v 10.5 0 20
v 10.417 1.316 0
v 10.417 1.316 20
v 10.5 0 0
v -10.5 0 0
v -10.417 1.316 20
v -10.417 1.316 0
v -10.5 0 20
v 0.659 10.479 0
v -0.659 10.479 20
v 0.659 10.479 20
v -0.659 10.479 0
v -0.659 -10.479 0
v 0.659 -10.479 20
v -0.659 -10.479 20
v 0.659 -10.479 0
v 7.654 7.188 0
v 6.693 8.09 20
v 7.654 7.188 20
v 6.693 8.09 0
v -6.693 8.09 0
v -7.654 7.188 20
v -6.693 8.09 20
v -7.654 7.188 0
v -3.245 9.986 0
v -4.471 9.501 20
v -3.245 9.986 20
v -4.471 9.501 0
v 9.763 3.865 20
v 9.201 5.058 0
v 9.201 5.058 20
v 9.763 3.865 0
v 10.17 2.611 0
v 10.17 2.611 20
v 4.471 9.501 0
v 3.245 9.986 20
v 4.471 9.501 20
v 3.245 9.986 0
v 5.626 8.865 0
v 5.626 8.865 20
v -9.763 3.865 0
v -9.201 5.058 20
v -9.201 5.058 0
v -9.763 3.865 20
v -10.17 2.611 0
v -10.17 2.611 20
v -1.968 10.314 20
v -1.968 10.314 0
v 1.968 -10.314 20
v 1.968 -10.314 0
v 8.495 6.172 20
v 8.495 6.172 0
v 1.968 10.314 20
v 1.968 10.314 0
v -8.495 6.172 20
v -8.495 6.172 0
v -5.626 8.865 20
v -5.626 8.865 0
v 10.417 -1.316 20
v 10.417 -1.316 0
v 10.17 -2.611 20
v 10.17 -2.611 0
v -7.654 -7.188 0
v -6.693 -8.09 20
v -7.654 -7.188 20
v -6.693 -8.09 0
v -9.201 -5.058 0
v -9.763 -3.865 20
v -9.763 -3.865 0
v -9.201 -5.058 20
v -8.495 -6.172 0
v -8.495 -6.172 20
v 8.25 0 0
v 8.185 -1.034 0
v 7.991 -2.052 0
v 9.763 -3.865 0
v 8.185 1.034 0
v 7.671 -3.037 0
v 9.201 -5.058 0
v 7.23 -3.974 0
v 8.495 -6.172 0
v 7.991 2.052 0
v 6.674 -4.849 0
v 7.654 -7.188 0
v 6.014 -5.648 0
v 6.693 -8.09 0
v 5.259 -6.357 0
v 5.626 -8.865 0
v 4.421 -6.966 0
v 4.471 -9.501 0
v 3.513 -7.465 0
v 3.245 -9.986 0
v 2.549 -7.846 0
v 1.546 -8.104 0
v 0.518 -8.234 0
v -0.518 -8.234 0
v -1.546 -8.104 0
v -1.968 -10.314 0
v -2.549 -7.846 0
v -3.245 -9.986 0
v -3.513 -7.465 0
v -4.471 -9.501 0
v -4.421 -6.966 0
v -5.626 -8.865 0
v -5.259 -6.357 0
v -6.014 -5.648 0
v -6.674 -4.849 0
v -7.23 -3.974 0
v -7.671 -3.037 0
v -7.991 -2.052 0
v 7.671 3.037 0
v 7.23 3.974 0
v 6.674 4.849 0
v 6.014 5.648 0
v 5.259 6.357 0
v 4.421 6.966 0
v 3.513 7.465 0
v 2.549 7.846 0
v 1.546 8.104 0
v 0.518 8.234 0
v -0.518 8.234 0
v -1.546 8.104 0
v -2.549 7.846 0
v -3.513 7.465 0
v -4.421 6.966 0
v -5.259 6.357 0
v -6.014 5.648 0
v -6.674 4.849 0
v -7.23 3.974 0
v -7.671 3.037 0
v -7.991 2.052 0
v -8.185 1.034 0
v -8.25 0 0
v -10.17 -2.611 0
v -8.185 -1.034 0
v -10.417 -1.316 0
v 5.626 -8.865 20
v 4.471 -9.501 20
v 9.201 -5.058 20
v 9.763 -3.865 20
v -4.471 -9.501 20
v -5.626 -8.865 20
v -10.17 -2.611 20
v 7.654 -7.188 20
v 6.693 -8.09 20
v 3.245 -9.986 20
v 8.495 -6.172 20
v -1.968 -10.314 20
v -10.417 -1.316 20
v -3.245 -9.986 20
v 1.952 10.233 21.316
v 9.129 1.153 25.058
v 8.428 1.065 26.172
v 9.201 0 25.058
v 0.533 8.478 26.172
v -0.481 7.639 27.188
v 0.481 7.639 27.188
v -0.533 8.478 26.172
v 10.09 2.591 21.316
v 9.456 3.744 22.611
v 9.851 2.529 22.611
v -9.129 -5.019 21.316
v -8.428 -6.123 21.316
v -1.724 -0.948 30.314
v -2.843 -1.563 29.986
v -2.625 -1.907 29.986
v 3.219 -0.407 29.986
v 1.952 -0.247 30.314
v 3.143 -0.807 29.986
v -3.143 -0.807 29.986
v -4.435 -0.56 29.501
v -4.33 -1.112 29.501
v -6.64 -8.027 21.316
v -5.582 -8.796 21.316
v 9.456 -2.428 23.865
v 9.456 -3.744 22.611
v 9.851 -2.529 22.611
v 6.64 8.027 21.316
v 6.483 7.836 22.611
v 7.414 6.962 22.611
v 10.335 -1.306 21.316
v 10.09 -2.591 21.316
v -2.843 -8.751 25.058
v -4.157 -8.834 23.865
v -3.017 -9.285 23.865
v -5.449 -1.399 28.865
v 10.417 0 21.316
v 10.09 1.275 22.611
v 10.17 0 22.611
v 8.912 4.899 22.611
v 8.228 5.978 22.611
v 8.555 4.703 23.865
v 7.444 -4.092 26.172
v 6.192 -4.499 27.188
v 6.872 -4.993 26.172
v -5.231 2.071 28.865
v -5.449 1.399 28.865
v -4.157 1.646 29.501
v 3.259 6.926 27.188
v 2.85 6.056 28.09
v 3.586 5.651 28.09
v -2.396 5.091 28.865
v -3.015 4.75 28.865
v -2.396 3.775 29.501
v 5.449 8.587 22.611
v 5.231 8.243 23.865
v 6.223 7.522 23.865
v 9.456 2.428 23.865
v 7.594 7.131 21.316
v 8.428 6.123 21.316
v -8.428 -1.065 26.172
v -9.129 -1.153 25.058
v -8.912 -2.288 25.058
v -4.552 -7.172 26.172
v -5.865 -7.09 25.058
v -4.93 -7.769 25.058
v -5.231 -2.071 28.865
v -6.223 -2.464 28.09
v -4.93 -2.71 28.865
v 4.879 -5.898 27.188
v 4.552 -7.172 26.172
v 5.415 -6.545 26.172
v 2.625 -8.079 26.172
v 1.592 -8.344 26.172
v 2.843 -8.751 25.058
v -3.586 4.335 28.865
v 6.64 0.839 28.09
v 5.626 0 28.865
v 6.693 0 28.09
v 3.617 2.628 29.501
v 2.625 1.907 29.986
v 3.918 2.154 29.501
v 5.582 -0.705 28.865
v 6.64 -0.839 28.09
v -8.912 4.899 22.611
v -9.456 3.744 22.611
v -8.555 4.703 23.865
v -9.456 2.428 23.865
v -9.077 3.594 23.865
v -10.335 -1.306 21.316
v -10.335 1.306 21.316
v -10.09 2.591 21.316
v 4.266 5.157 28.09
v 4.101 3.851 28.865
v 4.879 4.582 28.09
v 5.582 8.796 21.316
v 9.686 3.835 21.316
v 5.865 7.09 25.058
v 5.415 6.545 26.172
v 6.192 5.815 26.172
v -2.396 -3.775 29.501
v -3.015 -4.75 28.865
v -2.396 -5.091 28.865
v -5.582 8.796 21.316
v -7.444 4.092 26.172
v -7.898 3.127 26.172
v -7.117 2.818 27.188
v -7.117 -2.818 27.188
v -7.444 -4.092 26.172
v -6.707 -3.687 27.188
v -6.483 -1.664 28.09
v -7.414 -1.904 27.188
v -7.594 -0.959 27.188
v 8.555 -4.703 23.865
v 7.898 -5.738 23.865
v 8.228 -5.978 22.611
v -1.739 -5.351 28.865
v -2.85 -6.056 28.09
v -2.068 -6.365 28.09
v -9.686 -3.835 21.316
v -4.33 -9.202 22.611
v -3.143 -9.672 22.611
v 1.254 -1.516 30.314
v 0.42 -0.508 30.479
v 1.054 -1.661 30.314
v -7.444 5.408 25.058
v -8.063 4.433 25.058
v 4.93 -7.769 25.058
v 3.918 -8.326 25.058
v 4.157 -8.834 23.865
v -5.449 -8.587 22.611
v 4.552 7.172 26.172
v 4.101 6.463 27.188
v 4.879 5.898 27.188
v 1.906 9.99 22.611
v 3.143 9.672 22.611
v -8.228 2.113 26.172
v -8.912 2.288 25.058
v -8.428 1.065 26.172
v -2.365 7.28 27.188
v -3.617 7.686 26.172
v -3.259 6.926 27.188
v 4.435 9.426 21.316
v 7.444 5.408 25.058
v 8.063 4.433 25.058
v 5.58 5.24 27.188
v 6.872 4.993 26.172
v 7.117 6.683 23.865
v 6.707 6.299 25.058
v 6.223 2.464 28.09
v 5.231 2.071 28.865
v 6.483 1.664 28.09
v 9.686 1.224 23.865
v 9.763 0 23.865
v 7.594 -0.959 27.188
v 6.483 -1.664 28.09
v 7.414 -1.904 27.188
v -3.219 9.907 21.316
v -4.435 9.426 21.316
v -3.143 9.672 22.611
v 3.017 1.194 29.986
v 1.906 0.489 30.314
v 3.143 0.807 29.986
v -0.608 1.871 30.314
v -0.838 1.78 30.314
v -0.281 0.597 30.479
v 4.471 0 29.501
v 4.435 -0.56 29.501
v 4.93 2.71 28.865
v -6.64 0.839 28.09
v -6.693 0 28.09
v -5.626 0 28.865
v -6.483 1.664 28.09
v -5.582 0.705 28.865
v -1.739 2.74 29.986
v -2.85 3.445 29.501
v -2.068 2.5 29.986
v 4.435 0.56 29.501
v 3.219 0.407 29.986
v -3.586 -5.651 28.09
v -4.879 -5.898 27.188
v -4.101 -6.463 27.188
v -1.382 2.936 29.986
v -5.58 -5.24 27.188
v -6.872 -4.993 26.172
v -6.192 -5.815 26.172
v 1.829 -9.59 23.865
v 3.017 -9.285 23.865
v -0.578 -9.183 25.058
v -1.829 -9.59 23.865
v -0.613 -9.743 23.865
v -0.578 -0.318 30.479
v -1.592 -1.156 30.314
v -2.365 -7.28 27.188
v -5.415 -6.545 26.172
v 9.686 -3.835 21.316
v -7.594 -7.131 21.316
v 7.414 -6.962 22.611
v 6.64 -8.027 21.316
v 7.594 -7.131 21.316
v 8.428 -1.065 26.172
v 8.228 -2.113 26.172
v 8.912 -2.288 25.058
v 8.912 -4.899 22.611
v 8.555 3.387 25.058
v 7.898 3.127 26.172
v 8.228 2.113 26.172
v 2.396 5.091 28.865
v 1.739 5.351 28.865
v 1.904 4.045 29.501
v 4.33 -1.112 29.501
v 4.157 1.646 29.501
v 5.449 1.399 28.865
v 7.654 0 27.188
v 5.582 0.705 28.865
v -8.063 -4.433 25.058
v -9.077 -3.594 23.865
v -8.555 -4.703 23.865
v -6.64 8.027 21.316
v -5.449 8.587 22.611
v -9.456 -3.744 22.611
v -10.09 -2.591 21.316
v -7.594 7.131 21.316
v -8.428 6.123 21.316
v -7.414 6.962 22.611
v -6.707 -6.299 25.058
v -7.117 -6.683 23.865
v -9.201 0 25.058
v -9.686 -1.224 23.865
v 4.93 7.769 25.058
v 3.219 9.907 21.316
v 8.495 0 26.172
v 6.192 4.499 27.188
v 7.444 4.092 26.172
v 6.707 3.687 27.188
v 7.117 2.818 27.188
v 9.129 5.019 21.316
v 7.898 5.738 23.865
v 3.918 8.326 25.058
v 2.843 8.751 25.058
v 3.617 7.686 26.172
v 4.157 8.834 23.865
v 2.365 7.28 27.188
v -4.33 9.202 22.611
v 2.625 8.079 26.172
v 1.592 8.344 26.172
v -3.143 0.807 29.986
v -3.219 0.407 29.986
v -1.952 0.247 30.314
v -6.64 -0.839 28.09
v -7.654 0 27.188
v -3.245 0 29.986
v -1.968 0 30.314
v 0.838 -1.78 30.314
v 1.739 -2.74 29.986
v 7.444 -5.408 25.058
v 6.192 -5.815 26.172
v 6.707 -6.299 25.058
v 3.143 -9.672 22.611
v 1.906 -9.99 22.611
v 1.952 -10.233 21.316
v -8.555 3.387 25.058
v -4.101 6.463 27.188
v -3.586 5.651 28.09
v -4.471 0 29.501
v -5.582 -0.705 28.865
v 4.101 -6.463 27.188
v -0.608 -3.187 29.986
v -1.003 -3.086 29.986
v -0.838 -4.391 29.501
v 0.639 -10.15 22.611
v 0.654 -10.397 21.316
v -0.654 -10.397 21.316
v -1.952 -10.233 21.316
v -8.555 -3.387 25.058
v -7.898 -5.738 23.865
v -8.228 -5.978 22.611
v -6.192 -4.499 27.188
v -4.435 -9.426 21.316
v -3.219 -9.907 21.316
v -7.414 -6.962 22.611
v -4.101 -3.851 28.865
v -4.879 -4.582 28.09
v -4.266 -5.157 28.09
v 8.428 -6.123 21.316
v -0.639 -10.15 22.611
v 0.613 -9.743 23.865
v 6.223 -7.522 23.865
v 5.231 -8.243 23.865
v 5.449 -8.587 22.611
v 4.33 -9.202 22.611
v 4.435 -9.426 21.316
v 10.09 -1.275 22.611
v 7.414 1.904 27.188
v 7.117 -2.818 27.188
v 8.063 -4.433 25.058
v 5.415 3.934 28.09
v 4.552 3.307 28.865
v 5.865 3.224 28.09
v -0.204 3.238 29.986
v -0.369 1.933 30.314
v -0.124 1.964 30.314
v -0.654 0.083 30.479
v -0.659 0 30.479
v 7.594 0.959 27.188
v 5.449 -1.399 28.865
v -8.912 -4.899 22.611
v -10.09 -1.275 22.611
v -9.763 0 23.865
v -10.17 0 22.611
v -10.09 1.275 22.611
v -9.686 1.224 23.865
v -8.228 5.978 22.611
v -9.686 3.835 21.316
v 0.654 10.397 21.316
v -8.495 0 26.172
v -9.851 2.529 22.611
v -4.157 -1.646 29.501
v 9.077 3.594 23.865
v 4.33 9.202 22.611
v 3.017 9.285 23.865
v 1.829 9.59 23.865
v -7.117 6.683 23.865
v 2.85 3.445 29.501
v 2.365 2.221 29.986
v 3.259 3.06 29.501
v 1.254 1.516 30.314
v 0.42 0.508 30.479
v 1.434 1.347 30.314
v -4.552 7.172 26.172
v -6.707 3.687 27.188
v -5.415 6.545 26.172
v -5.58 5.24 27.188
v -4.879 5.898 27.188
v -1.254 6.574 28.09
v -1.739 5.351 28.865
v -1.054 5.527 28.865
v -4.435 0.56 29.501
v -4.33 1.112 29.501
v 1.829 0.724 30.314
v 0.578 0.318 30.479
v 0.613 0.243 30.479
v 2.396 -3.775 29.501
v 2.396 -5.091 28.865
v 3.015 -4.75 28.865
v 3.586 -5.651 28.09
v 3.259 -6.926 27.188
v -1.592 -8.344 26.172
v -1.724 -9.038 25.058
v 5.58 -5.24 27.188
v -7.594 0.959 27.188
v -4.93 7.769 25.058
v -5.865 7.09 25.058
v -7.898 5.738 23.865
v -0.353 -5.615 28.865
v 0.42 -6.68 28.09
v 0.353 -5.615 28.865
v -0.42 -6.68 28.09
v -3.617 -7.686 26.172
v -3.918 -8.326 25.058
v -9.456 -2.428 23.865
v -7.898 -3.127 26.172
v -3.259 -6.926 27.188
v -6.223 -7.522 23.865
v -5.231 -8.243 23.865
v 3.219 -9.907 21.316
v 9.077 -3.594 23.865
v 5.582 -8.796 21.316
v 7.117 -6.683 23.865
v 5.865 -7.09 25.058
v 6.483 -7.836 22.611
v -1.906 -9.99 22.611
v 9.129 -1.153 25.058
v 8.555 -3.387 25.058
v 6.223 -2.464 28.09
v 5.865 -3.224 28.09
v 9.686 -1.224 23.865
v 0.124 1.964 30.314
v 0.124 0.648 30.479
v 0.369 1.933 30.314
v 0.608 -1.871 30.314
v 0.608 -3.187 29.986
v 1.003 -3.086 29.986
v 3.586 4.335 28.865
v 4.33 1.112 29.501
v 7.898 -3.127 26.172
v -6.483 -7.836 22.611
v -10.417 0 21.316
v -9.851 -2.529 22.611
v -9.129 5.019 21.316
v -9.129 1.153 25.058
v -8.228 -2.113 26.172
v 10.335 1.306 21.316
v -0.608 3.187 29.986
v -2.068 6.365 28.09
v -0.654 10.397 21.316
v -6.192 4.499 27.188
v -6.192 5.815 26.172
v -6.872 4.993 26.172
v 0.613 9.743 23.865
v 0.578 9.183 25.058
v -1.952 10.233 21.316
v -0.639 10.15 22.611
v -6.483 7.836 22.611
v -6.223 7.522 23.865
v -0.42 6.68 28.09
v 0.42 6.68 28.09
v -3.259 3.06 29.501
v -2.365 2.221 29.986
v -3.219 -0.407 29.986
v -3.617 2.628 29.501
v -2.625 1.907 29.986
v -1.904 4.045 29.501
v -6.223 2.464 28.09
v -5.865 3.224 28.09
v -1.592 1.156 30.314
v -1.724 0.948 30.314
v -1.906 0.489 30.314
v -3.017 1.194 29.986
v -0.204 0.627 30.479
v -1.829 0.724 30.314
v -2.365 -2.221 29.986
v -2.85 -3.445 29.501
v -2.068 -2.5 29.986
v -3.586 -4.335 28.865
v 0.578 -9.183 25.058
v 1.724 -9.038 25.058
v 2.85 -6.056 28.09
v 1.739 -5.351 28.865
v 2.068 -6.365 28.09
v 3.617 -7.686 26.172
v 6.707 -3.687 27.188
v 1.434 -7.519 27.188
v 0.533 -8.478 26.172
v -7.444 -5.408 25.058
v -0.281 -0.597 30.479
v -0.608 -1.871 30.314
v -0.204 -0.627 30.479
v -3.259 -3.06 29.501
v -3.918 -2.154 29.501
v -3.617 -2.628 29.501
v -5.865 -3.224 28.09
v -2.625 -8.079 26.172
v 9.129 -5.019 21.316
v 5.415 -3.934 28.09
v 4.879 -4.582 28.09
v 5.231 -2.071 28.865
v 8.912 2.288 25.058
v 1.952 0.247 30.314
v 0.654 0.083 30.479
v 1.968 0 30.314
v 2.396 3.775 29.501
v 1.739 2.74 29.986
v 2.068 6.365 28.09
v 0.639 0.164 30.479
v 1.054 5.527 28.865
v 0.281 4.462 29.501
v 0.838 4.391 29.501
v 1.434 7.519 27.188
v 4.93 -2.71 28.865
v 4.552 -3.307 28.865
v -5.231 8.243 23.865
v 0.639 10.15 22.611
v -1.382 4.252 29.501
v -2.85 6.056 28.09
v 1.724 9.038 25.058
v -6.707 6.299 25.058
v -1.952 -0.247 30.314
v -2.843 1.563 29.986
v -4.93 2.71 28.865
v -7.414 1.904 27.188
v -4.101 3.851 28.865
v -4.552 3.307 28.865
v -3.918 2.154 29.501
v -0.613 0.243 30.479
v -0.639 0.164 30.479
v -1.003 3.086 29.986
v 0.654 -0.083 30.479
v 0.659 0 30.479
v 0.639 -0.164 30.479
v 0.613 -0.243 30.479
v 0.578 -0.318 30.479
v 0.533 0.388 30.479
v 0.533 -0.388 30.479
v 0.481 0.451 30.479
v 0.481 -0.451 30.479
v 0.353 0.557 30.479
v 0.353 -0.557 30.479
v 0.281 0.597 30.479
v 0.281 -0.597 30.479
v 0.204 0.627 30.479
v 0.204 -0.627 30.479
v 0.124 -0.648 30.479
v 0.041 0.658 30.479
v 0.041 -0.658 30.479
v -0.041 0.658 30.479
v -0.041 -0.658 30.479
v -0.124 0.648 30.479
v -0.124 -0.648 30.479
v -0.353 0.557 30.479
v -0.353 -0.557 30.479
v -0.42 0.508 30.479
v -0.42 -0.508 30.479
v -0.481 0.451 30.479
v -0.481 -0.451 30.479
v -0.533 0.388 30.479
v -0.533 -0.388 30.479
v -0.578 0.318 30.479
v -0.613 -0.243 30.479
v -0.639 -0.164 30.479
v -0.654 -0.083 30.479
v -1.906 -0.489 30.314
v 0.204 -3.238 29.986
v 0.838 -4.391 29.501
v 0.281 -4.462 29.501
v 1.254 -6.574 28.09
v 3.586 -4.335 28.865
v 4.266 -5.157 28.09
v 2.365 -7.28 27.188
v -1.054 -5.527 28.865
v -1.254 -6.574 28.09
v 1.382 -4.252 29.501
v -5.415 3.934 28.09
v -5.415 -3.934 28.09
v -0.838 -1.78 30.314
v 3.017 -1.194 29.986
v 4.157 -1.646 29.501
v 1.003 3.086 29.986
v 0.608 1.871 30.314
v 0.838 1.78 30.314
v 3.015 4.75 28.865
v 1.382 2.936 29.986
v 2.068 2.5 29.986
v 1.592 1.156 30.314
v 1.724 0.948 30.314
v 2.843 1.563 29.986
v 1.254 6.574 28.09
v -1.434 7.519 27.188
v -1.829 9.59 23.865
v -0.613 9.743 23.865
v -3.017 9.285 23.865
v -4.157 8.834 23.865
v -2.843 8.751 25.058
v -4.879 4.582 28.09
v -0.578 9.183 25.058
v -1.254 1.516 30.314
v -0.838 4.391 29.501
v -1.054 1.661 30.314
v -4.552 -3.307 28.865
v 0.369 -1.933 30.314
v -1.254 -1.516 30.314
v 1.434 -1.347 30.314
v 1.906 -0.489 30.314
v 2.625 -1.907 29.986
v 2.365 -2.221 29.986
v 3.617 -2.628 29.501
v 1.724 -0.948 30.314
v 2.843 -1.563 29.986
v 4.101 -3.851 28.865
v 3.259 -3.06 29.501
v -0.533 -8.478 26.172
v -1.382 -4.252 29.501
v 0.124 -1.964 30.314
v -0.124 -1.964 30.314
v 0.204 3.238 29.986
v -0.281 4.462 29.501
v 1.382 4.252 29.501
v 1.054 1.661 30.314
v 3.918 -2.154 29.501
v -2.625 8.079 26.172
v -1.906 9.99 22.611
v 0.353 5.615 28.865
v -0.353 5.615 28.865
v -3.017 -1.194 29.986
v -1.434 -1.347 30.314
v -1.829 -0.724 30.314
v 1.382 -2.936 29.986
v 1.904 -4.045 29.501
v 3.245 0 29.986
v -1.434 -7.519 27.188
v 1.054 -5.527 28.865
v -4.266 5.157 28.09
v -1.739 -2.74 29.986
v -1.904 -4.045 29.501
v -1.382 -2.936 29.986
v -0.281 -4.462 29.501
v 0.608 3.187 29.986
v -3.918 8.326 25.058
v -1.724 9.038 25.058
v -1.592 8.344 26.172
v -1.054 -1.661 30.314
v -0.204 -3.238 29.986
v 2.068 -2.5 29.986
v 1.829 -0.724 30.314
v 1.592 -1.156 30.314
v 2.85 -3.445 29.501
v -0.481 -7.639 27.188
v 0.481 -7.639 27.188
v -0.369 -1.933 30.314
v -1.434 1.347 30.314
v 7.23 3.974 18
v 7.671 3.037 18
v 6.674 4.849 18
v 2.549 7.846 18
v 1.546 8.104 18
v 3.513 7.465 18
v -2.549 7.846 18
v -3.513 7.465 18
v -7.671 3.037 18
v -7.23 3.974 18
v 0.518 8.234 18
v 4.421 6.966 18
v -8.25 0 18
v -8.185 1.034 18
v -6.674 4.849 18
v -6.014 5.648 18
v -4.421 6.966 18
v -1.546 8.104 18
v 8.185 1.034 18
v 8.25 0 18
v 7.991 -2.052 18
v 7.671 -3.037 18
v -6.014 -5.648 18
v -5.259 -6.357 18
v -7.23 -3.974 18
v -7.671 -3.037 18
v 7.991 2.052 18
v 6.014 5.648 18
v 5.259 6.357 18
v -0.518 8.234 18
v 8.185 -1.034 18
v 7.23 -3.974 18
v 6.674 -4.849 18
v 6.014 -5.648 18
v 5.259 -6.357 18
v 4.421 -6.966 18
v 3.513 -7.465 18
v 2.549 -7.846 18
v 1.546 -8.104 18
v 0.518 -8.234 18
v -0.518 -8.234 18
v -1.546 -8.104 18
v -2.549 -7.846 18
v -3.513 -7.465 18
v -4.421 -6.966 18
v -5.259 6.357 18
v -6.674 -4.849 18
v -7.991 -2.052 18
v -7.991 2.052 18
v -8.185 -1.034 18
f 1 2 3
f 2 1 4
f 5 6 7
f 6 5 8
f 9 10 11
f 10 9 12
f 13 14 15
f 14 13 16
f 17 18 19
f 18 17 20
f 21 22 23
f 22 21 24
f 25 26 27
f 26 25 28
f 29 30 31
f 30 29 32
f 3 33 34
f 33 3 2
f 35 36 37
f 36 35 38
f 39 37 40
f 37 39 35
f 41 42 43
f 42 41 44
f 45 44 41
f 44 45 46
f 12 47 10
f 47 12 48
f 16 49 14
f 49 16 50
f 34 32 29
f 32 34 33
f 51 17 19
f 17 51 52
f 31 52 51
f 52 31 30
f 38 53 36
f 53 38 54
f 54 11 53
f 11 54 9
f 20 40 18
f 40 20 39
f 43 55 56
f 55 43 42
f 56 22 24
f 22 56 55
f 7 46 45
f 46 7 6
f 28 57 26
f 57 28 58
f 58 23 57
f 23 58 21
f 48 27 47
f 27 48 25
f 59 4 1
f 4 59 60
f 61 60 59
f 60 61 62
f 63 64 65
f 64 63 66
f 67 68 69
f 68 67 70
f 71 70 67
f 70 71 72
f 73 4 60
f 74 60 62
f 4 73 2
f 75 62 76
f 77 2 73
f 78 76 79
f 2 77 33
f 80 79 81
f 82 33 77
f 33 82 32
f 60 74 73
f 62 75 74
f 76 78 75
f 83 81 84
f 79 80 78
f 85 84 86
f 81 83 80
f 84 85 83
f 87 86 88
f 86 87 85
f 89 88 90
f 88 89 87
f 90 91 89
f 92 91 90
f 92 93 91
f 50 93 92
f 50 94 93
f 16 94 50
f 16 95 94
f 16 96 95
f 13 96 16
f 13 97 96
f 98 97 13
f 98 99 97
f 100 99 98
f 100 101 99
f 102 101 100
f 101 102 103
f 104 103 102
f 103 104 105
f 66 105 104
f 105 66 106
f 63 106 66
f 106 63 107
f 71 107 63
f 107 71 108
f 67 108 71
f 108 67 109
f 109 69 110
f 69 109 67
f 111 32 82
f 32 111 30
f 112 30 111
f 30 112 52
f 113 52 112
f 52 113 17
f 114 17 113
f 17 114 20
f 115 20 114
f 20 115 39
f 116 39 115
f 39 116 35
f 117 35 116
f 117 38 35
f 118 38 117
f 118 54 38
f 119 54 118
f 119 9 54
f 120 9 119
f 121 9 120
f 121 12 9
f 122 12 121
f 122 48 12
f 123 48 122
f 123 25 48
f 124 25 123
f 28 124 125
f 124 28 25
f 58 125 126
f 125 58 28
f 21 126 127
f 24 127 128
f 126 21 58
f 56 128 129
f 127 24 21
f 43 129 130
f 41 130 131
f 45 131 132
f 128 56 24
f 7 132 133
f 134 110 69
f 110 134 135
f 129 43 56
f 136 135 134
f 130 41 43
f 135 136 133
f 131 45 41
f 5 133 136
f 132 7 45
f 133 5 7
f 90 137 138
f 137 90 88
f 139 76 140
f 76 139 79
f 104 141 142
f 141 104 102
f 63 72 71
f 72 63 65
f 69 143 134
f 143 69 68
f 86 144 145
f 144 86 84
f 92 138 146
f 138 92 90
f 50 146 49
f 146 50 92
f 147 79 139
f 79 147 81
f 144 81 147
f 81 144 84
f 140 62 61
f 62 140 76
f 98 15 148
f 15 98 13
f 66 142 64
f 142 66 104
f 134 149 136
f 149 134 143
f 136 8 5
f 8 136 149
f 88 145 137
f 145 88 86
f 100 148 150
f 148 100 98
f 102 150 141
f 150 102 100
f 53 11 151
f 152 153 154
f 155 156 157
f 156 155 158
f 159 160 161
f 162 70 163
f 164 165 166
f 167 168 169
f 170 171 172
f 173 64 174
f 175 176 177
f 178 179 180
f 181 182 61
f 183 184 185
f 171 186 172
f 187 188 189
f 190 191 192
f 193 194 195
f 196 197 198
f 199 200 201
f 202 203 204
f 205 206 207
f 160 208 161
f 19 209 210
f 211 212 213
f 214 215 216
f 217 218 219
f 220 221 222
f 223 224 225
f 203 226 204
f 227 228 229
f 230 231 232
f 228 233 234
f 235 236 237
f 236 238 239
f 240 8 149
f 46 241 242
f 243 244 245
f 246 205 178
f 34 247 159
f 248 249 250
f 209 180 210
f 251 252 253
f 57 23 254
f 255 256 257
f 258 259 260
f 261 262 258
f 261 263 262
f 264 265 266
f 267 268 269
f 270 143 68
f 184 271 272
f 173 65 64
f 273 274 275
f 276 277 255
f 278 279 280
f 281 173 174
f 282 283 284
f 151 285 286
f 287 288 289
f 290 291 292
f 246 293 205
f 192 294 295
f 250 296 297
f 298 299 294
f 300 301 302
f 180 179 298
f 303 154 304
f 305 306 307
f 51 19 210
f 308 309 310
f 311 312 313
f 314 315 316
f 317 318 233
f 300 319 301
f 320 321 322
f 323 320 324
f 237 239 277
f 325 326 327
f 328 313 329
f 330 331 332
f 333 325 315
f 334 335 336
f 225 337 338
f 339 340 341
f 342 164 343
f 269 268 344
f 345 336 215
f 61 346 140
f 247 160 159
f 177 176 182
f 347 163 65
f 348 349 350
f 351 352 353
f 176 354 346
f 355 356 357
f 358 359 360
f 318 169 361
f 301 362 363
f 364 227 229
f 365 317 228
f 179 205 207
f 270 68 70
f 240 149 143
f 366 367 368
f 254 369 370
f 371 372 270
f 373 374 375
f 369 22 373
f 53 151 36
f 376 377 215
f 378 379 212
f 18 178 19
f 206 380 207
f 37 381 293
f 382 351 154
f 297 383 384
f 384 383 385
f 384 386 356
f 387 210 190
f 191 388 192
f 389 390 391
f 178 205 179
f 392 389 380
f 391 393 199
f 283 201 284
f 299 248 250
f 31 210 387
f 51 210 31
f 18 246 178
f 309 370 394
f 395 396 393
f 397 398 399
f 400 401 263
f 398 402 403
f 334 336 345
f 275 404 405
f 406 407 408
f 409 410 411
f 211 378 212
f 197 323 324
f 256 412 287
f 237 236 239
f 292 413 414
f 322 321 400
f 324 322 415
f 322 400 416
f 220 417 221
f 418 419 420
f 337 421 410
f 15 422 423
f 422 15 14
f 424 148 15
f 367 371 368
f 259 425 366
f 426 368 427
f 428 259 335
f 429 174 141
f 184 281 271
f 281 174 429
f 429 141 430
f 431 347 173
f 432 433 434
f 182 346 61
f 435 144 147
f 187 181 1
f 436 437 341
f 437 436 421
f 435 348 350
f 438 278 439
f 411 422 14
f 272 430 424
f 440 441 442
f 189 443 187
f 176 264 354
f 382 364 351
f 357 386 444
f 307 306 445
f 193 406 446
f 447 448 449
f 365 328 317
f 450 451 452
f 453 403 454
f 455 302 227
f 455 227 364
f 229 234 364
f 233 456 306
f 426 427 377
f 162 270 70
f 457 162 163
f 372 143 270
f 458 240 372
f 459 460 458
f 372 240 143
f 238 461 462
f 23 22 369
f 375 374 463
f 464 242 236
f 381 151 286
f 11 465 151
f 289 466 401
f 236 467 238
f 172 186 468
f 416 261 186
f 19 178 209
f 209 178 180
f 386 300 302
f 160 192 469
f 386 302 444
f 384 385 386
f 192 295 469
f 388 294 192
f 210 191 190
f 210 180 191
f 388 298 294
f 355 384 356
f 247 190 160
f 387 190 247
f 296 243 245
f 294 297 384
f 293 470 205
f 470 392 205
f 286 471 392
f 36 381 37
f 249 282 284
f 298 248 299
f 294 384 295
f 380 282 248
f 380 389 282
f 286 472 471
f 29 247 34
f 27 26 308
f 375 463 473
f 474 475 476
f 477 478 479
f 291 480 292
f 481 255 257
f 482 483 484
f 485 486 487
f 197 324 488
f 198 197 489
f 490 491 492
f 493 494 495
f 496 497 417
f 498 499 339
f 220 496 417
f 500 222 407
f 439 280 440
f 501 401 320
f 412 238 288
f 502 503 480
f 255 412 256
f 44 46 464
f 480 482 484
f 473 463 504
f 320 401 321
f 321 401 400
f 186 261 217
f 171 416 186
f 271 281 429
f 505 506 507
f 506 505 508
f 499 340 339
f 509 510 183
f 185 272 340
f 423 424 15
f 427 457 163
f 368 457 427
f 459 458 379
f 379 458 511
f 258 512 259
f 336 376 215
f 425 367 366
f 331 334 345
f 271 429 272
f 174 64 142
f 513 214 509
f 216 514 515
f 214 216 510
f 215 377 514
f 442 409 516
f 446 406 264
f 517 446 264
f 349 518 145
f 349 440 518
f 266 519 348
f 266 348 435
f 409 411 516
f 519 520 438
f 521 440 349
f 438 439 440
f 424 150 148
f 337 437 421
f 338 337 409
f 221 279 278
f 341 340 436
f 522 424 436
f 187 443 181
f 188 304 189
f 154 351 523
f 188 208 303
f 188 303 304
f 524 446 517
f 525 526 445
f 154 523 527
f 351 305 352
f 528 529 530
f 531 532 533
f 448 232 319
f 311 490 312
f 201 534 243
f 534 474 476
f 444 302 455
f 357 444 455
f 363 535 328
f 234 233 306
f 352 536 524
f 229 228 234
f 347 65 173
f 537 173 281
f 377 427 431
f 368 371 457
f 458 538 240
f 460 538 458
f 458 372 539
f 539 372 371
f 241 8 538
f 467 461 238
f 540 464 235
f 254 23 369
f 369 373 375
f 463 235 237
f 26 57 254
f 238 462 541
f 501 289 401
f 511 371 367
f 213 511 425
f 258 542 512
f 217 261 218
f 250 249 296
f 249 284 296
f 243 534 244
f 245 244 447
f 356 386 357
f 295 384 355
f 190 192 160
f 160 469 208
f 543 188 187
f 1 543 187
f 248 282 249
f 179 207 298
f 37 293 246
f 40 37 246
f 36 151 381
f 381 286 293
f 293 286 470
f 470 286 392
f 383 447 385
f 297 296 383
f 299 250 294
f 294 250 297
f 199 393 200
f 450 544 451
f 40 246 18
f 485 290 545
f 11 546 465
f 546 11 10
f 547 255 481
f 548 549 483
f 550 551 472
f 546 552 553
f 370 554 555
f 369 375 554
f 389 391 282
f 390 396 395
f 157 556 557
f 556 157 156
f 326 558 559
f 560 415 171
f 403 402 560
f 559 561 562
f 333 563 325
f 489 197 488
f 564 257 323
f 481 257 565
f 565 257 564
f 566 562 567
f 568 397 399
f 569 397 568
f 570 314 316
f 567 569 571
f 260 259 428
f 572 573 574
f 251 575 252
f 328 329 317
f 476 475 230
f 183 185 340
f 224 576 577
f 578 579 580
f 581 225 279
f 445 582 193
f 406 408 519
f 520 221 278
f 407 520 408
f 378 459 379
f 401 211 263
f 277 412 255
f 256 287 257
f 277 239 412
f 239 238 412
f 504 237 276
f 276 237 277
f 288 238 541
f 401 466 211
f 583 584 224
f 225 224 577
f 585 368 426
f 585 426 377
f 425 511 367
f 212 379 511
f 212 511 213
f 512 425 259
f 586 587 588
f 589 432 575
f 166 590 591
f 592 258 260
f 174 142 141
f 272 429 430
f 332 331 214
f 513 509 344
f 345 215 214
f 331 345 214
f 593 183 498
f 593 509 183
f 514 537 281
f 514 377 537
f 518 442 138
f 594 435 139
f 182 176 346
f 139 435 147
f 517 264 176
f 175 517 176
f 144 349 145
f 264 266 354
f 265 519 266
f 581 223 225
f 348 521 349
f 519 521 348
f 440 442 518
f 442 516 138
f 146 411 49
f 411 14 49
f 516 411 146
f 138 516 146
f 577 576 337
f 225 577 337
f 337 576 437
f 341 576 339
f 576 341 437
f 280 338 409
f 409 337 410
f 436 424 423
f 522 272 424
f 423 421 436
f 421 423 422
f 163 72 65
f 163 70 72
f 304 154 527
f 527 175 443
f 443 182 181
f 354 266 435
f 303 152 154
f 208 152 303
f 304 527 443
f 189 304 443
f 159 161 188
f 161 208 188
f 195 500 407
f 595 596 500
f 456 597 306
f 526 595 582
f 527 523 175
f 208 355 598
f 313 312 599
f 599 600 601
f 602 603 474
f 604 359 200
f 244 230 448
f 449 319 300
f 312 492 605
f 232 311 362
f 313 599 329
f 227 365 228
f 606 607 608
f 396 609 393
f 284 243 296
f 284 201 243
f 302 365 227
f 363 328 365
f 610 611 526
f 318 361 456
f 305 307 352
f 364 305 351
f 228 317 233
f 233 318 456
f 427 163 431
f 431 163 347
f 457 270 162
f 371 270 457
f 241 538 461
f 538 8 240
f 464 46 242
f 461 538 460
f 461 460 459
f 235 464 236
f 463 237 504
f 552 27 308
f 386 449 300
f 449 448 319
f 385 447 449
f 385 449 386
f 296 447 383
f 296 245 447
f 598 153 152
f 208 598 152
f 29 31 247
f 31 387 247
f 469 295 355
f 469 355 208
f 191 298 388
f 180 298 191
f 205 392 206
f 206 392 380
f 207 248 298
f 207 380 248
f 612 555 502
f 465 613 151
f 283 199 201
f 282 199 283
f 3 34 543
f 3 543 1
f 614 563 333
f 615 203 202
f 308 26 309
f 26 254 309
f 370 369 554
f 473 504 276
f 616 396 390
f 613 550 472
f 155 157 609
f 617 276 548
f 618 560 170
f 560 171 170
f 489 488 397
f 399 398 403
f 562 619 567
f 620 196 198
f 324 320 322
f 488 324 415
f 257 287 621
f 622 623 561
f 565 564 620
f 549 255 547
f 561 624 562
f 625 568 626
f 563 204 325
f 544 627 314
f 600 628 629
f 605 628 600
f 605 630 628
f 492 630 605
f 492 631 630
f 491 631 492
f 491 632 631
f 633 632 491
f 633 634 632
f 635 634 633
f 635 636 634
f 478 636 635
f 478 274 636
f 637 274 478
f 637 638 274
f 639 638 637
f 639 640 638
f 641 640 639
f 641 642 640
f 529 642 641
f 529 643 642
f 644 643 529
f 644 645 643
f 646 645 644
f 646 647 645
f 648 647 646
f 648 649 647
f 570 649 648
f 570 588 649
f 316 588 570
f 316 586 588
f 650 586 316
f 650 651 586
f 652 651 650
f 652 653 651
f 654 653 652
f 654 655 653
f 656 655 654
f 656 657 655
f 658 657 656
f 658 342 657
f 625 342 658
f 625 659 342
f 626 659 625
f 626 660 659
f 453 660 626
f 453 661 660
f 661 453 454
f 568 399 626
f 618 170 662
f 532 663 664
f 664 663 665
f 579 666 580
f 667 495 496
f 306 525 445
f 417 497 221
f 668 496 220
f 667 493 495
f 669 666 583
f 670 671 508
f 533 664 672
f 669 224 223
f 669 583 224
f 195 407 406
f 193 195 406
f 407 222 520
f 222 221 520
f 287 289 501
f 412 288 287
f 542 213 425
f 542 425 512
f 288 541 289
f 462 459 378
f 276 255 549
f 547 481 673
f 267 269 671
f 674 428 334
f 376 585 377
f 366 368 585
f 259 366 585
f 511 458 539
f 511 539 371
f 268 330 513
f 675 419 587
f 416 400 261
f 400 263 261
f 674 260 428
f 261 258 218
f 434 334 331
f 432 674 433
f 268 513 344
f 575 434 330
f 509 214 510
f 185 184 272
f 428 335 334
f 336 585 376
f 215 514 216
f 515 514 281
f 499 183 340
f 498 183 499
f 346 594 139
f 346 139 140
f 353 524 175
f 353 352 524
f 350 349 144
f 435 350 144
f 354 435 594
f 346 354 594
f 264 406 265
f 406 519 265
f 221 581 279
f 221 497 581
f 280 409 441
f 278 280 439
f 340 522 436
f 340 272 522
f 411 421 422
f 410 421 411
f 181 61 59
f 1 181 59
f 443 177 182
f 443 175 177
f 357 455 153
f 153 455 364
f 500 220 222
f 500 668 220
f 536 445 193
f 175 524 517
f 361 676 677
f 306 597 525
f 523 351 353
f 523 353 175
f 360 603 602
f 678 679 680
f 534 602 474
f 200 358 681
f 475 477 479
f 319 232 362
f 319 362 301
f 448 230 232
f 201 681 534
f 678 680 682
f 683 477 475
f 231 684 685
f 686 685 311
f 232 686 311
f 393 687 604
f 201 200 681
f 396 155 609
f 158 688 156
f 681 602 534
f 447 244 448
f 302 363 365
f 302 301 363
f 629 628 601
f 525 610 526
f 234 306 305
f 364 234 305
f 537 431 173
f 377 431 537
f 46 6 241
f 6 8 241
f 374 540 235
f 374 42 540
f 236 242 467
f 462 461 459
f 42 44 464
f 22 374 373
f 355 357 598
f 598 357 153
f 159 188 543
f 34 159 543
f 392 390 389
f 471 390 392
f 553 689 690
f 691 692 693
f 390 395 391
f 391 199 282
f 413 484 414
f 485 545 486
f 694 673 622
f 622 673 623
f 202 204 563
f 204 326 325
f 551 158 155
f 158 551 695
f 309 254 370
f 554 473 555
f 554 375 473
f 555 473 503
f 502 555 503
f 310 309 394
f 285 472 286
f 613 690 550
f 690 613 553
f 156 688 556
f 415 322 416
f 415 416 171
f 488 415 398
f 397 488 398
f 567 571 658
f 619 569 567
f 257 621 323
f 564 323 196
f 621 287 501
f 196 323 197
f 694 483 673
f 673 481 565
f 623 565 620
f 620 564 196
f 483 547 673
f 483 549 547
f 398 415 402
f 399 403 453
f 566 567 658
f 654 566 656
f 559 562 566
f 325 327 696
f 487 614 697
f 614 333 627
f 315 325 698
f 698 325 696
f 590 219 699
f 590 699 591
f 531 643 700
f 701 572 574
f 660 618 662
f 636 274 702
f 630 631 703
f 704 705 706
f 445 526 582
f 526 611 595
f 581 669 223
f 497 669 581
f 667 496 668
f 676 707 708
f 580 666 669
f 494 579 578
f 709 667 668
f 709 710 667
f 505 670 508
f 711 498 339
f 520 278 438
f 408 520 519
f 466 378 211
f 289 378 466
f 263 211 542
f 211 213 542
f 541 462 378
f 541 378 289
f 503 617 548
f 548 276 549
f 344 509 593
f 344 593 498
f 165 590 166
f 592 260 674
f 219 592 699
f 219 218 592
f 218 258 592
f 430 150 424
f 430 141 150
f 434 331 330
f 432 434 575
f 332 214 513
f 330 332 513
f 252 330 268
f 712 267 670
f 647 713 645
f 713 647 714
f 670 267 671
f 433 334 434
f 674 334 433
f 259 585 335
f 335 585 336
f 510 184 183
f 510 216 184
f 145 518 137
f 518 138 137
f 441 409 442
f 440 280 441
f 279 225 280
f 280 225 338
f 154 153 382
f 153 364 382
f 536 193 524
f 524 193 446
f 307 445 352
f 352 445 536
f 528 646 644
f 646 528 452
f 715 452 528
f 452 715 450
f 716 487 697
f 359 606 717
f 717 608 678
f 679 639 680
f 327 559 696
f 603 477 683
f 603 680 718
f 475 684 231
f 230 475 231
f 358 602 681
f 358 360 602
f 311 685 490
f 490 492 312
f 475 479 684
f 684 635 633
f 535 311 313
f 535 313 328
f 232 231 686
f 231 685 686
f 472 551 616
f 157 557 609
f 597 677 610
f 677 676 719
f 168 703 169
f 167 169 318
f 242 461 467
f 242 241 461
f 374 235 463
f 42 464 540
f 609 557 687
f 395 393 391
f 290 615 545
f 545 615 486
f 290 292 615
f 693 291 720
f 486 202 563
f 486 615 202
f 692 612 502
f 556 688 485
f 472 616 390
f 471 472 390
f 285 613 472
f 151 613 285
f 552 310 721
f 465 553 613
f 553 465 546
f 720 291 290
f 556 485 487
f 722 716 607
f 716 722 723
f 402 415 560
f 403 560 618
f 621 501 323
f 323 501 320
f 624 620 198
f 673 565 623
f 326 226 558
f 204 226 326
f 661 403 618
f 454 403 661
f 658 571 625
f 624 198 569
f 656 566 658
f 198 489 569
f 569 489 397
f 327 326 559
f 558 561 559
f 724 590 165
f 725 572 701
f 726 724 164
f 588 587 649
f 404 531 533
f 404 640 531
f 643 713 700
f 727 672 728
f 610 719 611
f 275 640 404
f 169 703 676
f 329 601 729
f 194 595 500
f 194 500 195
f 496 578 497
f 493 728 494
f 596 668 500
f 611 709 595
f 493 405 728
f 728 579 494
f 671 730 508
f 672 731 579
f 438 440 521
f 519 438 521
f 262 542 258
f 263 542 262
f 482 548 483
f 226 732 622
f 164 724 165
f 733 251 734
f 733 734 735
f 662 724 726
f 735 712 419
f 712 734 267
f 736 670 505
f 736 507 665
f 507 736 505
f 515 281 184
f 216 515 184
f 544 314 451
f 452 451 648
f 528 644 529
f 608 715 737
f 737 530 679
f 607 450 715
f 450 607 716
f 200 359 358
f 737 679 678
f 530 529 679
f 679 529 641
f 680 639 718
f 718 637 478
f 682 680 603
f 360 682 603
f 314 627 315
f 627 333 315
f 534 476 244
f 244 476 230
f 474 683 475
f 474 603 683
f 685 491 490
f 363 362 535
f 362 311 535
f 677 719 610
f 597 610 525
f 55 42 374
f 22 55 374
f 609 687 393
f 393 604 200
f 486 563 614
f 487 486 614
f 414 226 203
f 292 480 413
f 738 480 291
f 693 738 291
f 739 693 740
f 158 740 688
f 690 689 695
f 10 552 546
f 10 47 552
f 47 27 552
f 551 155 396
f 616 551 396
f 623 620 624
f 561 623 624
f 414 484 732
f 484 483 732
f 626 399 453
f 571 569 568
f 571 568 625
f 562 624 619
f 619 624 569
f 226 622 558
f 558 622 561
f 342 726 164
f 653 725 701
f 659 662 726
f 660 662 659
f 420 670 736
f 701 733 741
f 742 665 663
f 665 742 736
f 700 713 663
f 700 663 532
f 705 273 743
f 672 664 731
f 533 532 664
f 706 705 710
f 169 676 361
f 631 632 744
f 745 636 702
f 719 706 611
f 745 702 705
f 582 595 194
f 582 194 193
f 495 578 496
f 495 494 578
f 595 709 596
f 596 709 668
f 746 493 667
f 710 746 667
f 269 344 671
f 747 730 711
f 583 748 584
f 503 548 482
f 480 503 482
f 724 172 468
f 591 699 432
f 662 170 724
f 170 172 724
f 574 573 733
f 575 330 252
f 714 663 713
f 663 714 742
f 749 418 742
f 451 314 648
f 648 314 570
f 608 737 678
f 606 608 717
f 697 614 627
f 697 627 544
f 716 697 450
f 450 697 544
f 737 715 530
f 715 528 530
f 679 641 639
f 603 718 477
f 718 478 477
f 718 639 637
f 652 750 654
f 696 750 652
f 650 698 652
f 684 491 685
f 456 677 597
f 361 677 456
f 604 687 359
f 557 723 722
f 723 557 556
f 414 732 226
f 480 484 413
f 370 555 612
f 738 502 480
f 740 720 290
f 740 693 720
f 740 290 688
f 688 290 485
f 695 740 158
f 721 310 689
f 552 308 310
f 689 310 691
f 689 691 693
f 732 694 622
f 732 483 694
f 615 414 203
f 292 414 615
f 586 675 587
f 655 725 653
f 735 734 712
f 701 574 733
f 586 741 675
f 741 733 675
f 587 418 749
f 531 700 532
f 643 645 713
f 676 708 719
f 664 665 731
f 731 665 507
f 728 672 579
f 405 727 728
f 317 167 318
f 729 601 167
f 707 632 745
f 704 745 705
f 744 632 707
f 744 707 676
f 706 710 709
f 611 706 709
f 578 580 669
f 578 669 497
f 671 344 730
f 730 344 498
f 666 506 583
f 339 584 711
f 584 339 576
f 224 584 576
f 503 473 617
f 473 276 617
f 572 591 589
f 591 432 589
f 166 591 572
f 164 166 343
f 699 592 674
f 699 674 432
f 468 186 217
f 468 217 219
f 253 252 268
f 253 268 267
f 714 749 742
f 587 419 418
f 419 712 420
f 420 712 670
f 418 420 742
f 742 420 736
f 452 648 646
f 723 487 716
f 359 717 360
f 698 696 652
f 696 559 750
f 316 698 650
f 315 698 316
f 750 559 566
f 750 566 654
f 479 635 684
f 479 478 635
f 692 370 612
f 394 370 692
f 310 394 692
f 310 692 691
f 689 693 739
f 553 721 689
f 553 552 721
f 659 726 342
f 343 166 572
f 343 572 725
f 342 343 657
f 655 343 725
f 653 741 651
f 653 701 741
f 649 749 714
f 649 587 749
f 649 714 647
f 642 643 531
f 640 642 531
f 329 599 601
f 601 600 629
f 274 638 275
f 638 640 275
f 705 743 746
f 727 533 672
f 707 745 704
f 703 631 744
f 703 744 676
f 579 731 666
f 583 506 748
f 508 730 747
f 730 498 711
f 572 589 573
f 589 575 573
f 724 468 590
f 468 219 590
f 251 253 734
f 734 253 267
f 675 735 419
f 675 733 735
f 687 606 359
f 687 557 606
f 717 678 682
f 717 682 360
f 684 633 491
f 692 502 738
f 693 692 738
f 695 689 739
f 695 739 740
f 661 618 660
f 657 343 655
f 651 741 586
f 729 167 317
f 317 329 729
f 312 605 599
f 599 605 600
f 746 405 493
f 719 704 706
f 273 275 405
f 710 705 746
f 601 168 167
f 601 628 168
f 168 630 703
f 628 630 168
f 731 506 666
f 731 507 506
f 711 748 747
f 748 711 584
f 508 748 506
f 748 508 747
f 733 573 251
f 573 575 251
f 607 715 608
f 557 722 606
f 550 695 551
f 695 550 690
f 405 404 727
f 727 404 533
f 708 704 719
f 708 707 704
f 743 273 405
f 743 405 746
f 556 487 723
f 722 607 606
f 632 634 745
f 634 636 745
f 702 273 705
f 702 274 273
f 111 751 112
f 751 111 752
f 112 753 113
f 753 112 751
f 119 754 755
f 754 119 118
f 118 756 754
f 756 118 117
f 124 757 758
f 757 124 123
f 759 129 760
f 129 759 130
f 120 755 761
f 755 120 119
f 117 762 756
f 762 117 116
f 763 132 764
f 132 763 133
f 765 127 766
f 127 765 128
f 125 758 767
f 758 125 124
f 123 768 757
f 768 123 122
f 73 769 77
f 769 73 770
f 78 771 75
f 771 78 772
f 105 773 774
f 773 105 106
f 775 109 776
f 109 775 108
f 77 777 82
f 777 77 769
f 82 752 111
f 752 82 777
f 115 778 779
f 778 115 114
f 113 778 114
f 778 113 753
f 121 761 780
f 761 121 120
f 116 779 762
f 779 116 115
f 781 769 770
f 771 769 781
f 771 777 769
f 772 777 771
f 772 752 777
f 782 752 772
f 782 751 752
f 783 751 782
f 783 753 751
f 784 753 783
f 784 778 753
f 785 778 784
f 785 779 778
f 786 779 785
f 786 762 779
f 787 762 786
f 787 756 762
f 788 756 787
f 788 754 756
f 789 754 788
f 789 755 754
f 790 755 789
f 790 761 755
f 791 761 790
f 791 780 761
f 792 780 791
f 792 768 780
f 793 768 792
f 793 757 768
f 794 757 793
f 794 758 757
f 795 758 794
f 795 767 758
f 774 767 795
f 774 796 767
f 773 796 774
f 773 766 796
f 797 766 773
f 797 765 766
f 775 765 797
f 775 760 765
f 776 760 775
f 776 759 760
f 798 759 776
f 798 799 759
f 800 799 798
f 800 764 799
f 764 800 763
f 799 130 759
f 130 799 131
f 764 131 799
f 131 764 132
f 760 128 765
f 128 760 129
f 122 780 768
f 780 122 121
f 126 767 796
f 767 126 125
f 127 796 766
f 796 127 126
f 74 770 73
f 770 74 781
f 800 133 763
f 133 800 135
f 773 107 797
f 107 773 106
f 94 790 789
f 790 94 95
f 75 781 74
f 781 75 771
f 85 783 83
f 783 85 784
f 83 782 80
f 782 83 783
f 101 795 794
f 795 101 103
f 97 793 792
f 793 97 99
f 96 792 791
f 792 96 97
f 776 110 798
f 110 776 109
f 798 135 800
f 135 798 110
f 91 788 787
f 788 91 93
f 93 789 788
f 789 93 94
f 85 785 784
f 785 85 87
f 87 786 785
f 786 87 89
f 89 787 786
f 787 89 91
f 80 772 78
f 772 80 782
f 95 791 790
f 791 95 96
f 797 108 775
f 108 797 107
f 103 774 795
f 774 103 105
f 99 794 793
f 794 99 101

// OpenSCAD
diameter_out = 21 / 2;
diameter_in = 16.5 / 2;
height = 20;
inner_height = 2;


$fn = 50;

difference() {
    union() {
        cylinder(height, diameter_out, diameter_out);
        translate([0, 0, height]) {
            sphere(diameter_out);
        }
    }
    
    cylinder(height - inner_height, diameter_in, diameter_in);
}
